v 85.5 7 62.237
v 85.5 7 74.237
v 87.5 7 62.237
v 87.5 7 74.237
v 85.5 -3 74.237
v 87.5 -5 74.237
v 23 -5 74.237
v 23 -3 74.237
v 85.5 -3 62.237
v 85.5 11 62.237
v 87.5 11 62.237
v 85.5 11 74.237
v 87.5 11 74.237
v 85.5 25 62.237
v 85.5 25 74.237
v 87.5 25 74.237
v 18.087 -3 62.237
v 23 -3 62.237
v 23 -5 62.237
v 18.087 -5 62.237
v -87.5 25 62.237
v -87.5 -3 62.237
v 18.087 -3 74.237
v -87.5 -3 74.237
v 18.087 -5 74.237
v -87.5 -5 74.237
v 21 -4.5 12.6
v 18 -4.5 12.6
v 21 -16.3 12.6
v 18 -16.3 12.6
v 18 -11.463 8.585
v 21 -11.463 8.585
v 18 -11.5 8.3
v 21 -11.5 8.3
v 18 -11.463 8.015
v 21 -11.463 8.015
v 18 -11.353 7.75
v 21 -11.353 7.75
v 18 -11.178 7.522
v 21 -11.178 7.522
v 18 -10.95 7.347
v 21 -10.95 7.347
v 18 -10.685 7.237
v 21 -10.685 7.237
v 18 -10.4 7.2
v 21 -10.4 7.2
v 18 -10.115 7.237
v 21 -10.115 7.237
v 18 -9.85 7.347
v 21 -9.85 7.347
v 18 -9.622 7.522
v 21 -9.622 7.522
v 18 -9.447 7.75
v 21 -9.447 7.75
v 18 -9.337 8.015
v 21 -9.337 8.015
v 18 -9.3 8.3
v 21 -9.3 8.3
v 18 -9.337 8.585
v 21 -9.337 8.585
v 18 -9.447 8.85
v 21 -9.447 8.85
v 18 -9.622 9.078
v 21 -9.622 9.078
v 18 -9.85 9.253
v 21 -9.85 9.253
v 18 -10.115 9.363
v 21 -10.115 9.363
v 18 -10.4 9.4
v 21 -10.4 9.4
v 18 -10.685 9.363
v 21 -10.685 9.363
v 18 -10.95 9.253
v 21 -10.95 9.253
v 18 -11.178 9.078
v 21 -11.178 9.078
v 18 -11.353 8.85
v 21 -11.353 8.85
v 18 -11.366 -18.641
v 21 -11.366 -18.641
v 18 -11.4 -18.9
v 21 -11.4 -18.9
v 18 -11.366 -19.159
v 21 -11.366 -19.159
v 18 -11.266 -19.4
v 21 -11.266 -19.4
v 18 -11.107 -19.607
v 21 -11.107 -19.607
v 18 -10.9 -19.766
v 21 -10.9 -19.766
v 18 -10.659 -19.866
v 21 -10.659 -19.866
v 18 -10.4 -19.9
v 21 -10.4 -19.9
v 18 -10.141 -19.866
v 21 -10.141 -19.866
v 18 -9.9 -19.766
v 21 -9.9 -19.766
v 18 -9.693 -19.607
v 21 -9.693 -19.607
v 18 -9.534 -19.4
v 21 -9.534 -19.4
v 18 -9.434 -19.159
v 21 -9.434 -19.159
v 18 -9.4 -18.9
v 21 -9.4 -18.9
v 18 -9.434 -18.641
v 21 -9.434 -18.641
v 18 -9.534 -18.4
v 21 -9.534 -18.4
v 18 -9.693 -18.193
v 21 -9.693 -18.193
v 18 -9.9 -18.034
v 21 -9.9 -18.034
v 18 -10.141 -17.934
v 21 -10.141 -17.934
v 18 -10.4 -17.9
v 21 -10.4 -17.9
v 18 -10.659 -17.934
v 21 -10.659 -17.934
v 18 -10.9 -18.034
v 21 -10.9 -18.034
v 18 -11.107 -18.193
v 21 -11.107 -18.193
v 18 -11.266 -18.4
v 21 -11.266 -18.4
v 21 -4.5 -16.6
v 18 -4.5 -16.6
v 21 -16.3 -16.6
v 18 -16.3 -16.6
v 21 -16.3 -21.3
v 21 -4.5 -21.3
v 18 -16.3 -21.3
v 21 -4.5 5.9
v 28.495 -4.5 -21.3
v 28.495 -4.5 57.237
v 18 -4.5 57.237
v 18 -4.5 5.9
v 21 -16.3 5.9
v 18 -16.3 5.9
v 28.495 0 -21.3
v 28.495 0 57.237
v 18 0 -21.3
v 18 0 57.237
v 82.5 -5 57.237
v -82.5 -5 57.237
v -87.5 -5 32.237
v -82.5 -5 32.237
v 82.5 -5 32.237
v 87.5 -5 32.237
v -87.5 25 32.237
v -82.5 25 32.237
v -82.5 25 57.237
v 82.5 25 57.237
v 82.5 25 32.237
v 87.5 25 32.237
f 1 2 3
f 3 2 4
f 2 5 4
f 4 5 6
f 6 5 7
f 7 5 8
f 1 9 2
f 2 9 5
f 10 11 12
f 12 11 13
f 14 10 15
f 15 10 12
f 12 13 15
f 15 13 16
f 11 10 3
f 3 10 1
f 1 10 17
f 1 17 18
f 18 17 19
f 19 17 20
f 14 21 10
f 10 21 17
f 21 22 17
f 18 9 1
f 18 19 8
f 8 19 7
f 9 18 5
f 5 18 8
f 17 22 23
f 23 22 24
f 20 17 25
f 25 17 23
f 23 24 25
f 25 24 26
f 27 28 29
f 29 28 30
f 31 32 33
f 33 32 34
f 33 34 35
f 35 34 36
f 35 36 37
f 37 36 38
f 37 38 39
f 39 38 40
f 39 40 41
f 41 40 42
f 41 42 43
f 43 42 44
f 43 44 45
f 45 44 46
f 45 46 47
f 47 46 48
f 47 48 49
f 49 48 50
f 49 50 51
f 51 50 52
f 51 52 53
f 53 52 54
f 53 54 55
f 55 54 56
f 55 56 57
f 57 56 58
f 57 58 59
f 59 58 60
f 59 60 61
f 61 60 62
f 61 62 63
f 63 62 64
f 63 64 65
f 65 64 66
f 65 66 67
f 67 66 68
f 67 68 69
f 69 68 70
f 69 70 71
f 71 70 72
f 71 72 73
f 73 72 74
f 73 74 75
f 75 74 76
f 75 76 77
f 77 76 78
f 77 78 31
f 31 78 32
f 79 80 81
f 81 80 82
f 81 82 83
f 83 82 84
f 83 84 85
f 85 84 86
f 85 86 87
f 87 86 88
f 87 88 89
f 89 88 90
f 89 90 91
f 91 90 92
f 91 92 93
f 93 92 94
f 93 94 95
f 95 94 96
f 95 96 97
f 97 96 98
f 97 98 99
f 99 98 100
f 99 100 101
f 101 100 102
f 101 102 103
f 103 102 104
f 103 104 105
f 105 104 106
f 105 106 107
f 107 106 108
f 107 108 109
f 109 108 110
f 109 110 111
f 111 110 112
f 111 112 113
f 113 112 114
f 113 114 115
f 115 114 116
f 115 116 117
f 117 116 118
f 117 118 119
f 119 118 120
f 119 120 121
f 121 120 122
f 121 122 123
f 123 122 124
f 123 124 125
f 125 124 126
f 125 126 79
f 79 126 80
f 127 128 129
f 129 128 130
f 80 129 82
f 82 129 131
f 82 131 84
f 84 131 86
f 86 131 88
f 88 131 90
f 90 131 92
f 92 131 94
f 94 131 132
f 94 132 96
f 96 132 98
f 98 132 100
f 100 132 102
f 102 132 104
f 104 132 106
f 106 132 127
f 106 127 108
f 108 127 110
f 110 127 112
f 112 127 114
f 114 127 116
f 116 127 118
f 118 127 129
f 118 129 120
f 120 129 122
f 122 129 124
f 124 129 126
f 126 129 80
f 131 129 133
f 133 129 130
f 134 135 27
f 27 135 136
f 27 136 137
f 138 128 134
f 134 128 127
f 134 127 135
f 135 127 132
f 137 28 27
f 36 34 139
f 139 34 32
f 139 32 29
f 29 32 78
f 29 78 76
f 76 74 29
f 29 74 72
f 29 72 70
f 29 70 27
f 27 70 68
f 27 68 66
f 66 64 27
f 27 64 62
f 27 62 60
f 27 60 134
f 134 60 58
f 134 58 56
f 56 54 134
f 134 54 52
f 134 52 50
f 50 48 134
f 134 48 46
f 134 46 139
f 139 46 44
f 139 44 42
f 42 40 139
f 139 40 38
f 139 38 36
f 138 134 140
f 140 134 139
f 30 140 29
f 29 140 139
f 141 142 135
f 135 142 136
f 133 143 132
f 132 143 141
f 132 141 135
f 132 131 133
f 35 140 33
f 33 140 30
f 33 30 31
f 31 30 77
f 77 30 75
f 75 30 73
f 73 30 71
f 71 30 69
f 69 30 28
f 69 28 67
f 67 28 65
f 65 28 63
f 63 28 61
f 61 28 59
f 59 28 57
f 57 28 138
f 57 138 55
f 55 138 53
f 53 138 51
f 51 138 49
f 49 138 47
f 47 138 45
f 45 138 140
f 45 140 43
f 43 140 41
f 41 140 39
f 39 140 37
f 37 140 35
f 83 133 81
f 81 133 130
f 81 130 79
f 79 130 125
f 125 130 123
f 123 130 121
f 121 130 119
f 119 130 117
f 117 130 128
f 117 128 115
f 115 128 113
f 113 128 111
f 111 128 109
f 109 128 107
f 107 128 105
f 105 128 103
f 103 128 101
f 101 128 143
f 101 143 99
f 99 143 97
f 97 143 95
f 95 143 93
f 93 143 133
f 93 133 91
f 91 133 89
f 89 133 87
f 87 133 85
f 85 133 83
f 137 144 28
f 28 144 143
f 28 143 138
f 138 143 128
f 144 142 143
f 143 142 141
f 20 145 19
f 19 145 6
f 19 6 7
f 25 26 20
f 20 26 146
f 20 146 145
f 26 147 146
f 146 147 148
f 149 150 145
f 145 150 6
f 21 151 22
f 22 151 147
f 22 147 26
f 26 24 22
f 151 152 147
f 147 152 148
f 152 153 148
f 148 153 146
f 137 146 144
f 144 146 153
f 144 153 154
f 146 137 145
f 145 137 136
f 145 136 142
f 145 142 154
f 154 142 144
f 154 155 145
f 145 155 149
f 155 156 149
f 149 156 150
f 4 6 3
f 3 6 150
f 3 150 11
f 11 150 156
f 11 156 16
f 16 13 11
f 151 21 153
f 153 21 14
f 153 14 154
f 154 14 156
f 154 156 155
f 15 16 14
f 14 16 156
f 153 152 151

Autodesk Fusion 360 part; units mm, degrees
sketch "Sketch2" plane through (0, 0, 0) normal (0, 1, 0) x (1, 0, 0)
  line L0 (0, -62.2369) -> (87.5, -62.2369)
  line L1 (87.5, -62.2369) -> (87.5, -32.2369)
  line L2 (87.5, -32.2369) -> (82.5, -32.2369)
  line L3 (0, -57.2369) -> (0, -62.2369)
  line L4 (82.5, -32.2369) -> (82.5, -57.2369)
  line L5 (82.5, -57.2369) -> (0, -57.2369)
  line L6 (0, 0) -> (0, -57.2369) construction
  line L7 (-87.5, -32.2369) -> (-82.5, -32.2369)
  line L8 (-82.5, -32.2369) -> (-82.5, -57.2369)
  line L9 (-82.5, -57.2369) -> (0, -57.2369)
  line L10 (0, -57.2369) -> (0, -62.2369)
  line L11 (0, -62.2369) -> (-87.5, -62.2369)
  line L12 (-87.5, -62.2369) -> (-87.5, -32.2369)
  line L13 (0, 0) -> (30, 0) construction
  line L14 (0, 0) -> (0, -10.6) construction
  line L15 (18, 21.3) -> (28.4945, 21.3)
  line L16 (28.4945, 21.3) -> (28.4945, -57.2369)
  line L17 (28.4945, -57.2369) -> (18, -57.2369)
  line L18 (18, -57.2369) -> (18, 21.3)
  line L19 (21, -10.6) -> (18, -10.6)
  line L20 (18, -10.6) -> (18, -5.9)
  line L21 (18, -5.9) -> (21, -5.9)
  line L22 (21, -5.9) -> (21, -10.6)
  line L23 (0, 0) -> (0, 21.3) construction
  line L24 (18, 21.3) -> (21, 21.3)
  line L25 (21, 21.3) -> (21, 16.6)
  line L26 (21, 16.6) -> (18, 16.6)
  line L27 (18, 16.6) -> (18, 21.3)
  dimension "d1" = 5
  dimension "d2" = 82.5
  dimension "d3" = 5
  dimension "d4" = 25
  dimension "d10" = 10.6
  dimension "d14" = 4.7
  dimension "d15" = 3
  dimension "d16" = 21.3
  dimension "d17" = 3
  dimension "d18" = 4.7
  dimension "d19" = 22.5
extrude "Extrude1" add sketch "Sketch2" along normal blind 25 and the other way blind 5 contours L0 L1 L2 L3 L4 L5 L10 L17 | L3 L7 L8 L9 L10 L11 L12
extrude "Extrude2" add sketch "Sketch2" against normal blind 4.5 contours L5 L15 L16 L17 L18 L19 L21 L22 L25 L26 | L18 L19 L20 L21 L22 | L15 L18 L24 L25 L26 L27
extrude "Extrude3" add sketch "Sketch2" against normal blind 11.8 from surface at -4.5 contours L18 L19 L20 L21 L22 | L15 L18 L24 L25 L26 L27
sketch "Sketch3" plane through (21, 0, 0) normal (1, 0, 0) x (0, 1, 0)
  line L0 (-4.5, 5.9) -> (-4.5, 10.6)
  line L1 (-4.5, 10.6) -> (-16.3, 10.6)
  line L2 (-16.3, 10.6) -> (-16.3, 5.9)
  line L3 (-16.3, 5.9) -> (-4.5, 5.9)
  line L4 (-16.3, 10.6) -> (-10.4, 10.6) construction
  line L5 (-10.4, 10.6) -> (-10.4, 8.3) construction
  line L6 (-10.4, 8.3) -> (-16.3, 8.3) construction
  line L7 (-16.3, 8.3) -> (-16.3, 10.6) construction
  circle A0 centre (-10.4, 8.3) radius 1.1
  dimension "d23" = 5.9
  dimension "d24" = 2.3
  dimension "d25" = 2.2
sketch "Sketch4" plane through (21, 0, 0) normal (1, 0, 0) x (0, 1, 0)
  line L0 (-4.5, -21.3) -> (-4.5, -16.6)
  line L1 (-4.5, -16.6) -> (-16.3, -16.6)
  line L2 (-16.3, -16.6) -> (-16.3, -21.3)
  line L3 (-16.3, -21.3) -> (-4.5, -21.3)
  line L4 (-16.3, -16.6) -> (-10.4, -16.6) construction
  line L5 (-10.4, -16.6) -> (-10.4, -18.9) construction
  line L6 (-10.4, -18.9) -> (-16.3, -18.9) construction
  line L7 (-16.3, -18.9) -> (-16.3, -16.6) construction
  circle A0 centre (-10.4, -18.9) radius 1
  dimension "d26" = 5.9
  dimension "d27" = 2.3
  dimension "d28" = 2
extrude "Extrude4" cut sketch "Sketch4" against normal blind 6 contours A0
extrude "Extrude5" cut sketch "Sketch3" against normal blind 5.5 contours A0
extrude "Extrude6" add 1 faces at (20, -12.3667, 10.6) along direction (0, 0, 1) blind 2
sketch "Sketch5" plane through (0, 0, 62.2369) normal (0, 0, 1) x (-1, 0, 0)
  line L0 (-87.5, 5) -> (-87.5, -25)
  line L1 (-87.5, -25) -> (87.5, -25)
  line L2 (87.5, -25) -> (87.5, 5)
  line L3 (87.5, 5) -> (-87.5, 5)
  line L4 (87.5, 5) -> (-87.5, 5)
  line L5 (-87.5, 5) -> (-87.5, 3)
  line L6 (-87.5, 3) -> (87.5, 3)
  line L7 (87.5, 3) -> (87.5, 5)
  line L8 (-18.0867, 5) -> (-18.0867, 3)
  line L9 (-23.0002, 5) -> (-23.0002, 3)
  line L10 (-87.5, 3) -> (-85.5, 3)
  line L11 (-85.5, 3) -> (-85.5, -25)
  line L12 (-85.5, -25) -> (-87.5, -25)
  line L13 (-87.5, -25) -> (-87.5, 3)
  line L14 (-85.5, -11) -> (-87.5, -11)
  line L15 (-87.5, -11) -> (-87.5, -9)
  line L16 (-87.5, -9) -> (-85.5, -9)
  line L17 (-85.5, -9) -> (-85.5, -11)
  dimension "d35" = 2
  dimension "d38" = 2
extrude "Extrude7" add sketch "Sketch5" along normal blind 12 contours L0 L3 L4 L5 L6 L9 L10 | L2 L3 L4 L6 L7 L8
extrude "Extrude8" add sketch "Sketch5" along normal blind 12 contours L0 L6 L10 L11 L13 L16 | L0 L1 L11 L12 L13 L14
extrude "Extrude9" cut 1 faces at (86.8333, 9, 70.2369) along direction (0, -1, 0) blind 2
equation "d10 = 5.9 mm + 4.7 mm"
